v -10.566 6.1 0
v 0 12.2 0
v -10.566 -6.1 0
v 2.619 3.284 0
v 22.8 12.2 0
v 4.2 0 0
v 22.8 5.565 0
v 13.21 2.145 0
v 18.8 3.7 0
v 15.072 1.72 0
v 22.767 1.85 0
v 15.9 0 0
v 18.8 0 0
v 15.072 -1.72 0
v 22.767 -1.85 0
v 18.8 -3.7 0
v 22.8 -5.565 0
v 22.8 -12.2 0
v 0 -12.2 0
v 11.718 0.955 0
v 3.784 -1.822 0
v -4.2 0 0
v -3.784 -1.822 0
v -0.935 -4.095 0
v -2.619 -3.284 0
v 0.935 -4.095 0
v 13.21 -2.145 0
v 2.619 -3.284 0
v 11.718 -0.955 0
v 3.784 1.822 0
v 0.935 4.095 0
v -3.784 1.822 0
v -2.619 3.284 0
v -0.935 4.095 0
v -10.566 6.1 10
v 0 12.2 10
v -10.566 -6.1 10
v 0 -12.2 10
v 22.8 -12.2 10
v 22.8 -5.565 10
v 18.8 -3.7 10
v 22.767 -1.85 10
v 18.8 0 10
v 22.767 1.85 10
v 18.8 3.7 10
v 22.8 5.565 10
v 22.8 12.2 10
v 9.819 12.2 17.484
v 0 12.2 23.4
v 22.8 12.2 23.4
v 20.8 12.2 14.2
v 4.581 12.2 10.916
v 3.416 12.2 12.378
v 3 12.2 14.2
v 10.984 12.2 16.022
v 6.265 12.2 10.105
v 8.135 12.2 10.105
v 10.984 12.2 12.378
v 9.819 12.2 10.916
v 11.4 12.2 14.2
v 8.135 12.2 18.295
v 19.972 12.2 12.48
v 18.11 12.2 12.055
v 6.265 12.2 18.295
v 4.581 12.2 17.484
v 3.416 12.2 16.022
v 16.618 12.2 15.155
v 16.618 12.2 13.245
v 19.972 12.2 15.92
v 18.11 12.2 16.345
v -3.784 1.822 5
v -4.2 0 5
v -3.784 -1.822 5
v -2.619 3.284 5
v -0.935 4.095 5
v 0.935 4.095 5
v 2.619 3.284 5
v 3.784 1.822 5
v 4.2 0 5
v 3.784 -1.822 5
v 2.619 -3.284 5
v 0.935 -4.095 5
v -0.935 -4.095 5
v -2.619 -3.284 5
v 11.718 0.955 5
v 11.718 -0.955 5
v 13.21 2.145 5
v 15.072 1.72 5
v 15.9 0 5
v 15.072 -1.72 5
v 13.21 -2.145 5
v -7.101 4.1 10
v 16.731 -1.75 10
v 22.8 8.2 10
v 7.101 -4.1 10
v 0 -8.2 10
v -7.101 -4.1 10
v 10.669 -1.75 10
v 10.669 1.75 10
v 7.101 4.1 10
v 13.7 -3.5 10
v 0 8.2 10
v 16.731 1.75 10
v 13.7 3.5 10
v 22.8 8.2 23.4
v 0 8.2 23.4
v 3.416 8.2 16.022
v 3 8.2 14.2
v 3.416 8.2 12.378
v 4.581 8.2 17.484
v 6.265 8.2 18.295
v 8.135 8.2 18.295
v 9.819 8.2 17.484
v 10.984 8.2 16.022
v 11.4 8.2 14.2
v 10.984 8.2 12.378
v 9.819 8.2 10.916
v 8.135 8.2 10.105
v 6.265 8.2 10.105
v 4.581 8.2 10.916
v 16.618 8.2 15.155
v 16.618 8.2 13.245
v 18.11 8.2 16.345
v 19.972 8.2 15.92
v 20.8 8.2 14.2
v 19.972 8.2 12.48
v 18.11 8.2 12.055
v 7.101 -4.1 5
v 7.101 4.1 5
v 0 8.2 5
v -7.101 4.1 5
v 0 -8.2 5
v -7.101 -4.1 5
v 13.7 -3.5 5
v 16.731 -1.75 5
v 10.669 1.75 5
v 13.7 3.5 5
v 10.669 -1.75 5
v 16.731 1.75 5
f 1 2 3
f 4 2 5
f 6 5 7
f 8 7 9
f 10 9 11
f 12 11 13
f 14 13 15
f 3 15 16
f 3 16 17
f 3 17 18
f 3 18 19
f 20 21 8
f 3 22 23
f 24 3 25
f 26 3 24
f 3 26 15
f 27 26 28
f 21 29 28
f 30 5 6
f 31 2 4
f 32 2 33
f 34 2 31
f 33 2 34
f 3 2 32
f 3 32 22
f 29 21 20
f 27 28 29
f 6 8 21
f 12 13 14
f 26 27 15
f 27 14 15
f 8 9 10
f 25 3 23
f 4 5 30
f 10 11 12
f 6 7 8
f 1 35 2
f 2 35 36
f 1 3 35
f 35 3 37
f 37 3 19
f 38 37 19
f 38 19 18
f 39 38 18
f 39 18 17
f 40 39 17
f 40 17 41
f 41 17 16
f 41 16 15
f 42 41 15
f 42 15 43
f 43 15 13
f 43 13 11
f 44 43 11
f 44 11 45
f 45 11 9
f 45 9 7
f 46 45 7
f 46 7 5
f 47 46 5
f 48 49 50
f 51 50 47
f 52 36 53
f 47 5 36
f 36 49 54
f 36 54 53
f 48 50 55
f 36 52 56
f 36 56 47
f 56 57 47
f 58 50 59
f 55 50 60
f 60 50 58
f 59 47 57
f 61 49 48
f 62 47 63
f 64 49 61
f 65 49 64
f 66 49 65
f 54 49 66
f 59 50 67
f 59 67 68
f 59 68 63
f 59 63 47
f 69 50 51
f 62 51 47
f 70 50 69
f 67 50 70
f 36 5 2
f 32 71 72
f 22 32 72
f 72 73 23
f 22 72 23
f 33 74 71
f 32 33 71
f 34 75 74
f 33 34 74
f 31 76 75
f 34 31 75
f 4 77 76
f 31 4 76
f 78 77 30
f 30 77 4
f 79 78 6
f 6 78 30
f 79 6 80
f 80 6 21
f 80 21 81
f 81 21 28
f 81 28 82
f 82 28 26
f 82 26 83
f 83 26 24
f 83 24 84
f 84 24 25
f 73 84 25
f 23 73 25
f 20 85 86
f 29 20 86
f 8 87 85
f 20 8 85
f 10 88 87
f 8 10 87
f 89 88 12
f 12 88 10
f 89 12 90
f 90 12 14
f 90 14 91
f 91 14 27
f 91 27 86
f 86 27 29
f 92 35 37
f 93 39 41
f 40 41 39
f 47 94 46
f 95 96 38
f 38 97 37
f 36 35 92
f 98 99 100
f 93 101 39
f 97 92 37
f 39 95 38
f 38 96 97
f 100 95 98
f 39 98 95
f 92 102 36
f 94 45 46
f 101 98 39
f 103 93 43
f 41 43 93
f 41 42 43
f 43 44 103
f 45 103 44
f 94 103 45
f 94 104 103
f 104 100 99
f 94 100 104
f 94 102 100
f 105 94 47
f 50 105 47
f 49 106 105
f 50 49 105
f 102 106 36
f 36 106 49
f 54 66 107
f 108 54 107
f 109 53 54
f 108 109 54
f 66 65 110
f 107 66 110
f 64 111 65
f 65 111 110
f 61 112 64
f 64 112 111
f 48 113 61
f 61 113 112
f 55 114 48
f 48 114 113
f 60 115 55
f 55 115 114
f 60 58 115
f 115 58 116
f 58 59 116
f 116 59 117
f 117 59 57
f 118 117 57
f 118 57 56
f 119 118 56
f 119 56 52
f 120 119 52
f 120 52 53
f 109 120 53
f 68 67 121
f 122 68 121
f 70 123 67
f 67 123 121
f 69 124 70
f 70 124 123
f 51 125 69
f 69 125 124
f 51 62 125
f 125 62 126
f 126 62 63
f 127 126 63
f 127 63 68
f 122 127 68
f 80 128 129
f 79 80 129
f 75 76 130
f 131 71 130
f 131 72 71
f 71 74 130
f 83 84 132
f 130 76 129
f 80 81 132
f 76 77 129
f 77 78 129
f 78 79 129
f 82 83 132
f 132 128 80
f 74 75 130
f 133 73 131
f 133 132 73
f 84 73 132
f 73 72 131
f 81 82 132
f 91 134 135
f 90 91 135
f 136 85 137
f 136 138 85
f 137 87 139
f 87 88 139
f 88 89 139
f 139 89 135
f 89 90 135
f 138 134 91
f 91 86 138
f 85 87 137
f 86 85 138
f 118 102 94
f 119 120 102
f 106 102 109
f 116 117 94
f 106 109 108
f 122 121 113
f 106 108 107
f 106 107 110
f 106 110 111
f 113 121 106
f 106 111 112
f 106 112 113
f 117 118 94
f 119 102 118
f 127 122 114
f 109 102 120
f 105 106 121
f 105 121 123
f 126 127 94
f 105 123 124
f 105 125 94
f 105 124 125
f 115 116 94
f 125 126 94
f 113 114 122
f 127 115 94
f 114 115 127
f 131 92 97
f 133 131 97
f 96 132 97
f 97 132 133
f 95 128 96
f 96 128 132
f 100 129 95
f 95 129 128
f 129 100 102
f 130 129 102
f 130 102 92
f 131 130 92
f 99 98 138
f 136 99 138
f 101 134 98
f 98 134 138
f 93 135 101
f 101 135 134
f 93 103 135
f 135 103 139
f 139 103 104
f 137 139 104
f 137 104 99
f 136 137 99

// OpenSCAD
// file: configuration-metric.scad
// PRUSA Mendel  
// Metric Configuration file
// GNU GPL v2
// Josef Průša
// josefprusa@me.com
// prusadjs.cz
// http://www.reprap.org/wiki/Prusa_Mendel
// http://github.com/prusajr/PrusaMendel

// CONFIGURATION FILE FOR METRIC VARIANT OF PRUSA MENDEL

// M8 rod diameter
m8_diameter = 8.4;

// M8 nut diameter diameter
// Used for $fn nut trick -> cylinder(h = 5, r=m8_nut_diameter, $fn=6, center=true);
m8_nut_diameter = 16.4;

// M4 rod/screw diameter
m4_diameter = 5;

// M4 nut diameter
// Used for $fn nut trick -> cylinder(h = 5, r=m4_nut_diameter, $fn=6, center=true);
m4_nut_diameter = 9;

// M3 rod/screw diameter
m3_diameter = 4.4;

// M3 nut diameter diameter
// Used for $fn nut trick -> cylinder(h = 5, r=m3_nut_diameter, $fn=6, center=true);
m3_nut_diameter = 7;

// Bushing holders diameter
bushing_diameter = 11;

//Motor shaft diameter
motor_shaft=5;

//Bushings
	//Size of rod on which it will slide
	bushing_rodsize = 8;
	
	//Size of whole bushings (diameter because the core is cylinder)
	bushing_outerDiameter = 16;
	
	//How long they are going to be
	bushing_lenght = 11;
	
	// TYPE Can generate three versions
	// 1 - regular old ones
	// 2 - helical ones
	// 3 - holders for brass or any other bought bushings
	bushing_type = 2;
// file: configuration.scad
// PRUSA Mendel  
// Configuration file
// GNU GPL v2
// Josef Průša
// josefprusa@me.com
// prusadjs.cz
// http://www.reprap.org/wiki/Prusa_Mendel
// http://github.com/prusajr/PrusaMendel

// PLESE SELECT ONE OF THE CONFIGURATION FILES
// BY UN-COMMENTING IT

// METRIC VERSION
include <configuration-metric.scad>

// IMPERIAL VERSION (TODO, just place holder)
// Spacexula will do it ;-)
// include <configuration-imperial.scad>

// MINI-HUXLEY VERSION (TODO, just place holder)
// include <configuration-huxley.scad>

// MEGA VERSION (TODO, just place holder)
// include <configuration-mega.scad>
// main file
// PRUSA Mendel  
// Configuration test
// GNU GPL v2
// Josef Průša
// josefprusa@me.com
// prusadjs.cz
// http://www.reprap.org/wiki/Prusa_Mendel
// http://github.com/prusajr/PrusaMendel
include <configuration.scad>

/**
 *@name Configuration test
 */
module configurationtest(){
difference(){
	union(){
		rotate(a=[0,0,30]) cylinder(h = 10, r=(m8_nut_diameter/2)+4, $fn =6);
		translate(v=[(((m8_diameter/2)+3)*2+(m3_diameter/2)+2+(((m3_diameter/2)+2)*2)/2)/2,0,5]) cube(size = [((m8_diameter/2)+3)*2+(m3_diameter/2)+2+(((m3_diameter/2)+2)*2)/2,((m8_nut_diameter/2)+4)*2,10], center = true);

		translate(v=[((m8_diameter/2)+3),(m8_nut_diameter/2)+2,((m8_diameter)+15)/2]) cube(size = [((m8_diameter/2)+3)*2,4,(m8_diameter)+15], center = true);
		//translate(v=[(m8_diameter/2)+3,(m8_nut_diameter/2)+4,(m8_diameter/2)+10]) rotate(a=[90,0,0])cylinder(h = 4, r=(m8_diameter/2)+3);

		translate(v=[((m8_diameter/2)+3)*2+(m3_diameter/2)+1.9,(m8_nut_diameter/2)+2,((m8_diameter)+15)/2]) cube(size = [((m3_diameter/2)+2.1)*2,4,(m8_diameter)+15], center = true);
		//translate(v=[((m8_diameter/2)+3)*2+(m3_diameter/2)+2,(m8_nut_diameter/2)+4,(m8_diameter/2)+10]) rotate(a=[90,0,0])cylinder(h = 4, r=(m3_diameter/2)+2);
	}
	translate(v=[(m8_diameter/2)+3,(m8_nut_diameter/2)+5,(m8_diameter/2)+10]) rotate(a=[90,0,0])cylinder(h = 6, r=(m8_diameter/2));
	translate(v=[((m8_diameter/2)+3)*2+(m3_diameter/2)+2,(m8_nut_diameter/2)+5,(m8_diameter/2)+10]) rotate(a=[90,0,0])cylinder(h = 6, r=(m3_diameter/2));
	translate(v=[0,0,-1]) cylinder(h = 15, r=(m8_diameter/2));
	translate(v=[(m8_nut_diameter/2)+(m3_nut_diameter/2)+2,0,-1]) cylinder(h = 15, r=(m3_diameter/2));
	translate(v=[(m8_nut_diameter/2)+(m3_nut_diameter/2)+2,0,5]) rotate(a=[0,0,30]) cylinder(h = 15, r=(m3_nut_diameter/2), $fn =6);
	rotate(a=[0,0,30]) translate(v=[0,0,5]) cylinder(h = 15, r=(m8_nut_diameter/2), $fn =6);

	translate(v=[((m8_diameter/2)+3)*2+(m3_diameter/2)+2+(((m3_diameter/2)+2)*2)/2-4,0,0]) rotate(a=[0,0,-25])difference(){
 	translate(v=[0,0,-1])cube(size = [10,10,20]);
 	rotate(a=[0,0,50]) translate(v=[0,0,-1.5]) cube(size = [30,30,21]);}
	
	translate(v=[((m8_diameter/2)+3)*2+(m3_diameter/2)+2+(((m3_diameter/2)+2)*2)/2-4,-3.7,0]) rotate(a=[0,0,-25])difference(){
 	translate(v=[0,0,-1])cube(size = [10,10,20]);
 	rotate(a=[0,0,50]) translate(v=[0,0,-1.5]) cube(size = [30,30,21]);}
	
	translate(v=[((m8_diameter/2)+3)*2+(m3_diameter/2)+2+(((m3_diameter/2)+2)*2)/2-4,3.7,0]) rotate(a=[0,0,-25])difference(){
 	translate(v=[0,0,-1])cube(size = [10,10,20]);
 	rotate(a=[0,0,50]) translate(v=[0,0,-1.5]) cube(size = [30,30,21]);}
	}
}
configurationtest();
